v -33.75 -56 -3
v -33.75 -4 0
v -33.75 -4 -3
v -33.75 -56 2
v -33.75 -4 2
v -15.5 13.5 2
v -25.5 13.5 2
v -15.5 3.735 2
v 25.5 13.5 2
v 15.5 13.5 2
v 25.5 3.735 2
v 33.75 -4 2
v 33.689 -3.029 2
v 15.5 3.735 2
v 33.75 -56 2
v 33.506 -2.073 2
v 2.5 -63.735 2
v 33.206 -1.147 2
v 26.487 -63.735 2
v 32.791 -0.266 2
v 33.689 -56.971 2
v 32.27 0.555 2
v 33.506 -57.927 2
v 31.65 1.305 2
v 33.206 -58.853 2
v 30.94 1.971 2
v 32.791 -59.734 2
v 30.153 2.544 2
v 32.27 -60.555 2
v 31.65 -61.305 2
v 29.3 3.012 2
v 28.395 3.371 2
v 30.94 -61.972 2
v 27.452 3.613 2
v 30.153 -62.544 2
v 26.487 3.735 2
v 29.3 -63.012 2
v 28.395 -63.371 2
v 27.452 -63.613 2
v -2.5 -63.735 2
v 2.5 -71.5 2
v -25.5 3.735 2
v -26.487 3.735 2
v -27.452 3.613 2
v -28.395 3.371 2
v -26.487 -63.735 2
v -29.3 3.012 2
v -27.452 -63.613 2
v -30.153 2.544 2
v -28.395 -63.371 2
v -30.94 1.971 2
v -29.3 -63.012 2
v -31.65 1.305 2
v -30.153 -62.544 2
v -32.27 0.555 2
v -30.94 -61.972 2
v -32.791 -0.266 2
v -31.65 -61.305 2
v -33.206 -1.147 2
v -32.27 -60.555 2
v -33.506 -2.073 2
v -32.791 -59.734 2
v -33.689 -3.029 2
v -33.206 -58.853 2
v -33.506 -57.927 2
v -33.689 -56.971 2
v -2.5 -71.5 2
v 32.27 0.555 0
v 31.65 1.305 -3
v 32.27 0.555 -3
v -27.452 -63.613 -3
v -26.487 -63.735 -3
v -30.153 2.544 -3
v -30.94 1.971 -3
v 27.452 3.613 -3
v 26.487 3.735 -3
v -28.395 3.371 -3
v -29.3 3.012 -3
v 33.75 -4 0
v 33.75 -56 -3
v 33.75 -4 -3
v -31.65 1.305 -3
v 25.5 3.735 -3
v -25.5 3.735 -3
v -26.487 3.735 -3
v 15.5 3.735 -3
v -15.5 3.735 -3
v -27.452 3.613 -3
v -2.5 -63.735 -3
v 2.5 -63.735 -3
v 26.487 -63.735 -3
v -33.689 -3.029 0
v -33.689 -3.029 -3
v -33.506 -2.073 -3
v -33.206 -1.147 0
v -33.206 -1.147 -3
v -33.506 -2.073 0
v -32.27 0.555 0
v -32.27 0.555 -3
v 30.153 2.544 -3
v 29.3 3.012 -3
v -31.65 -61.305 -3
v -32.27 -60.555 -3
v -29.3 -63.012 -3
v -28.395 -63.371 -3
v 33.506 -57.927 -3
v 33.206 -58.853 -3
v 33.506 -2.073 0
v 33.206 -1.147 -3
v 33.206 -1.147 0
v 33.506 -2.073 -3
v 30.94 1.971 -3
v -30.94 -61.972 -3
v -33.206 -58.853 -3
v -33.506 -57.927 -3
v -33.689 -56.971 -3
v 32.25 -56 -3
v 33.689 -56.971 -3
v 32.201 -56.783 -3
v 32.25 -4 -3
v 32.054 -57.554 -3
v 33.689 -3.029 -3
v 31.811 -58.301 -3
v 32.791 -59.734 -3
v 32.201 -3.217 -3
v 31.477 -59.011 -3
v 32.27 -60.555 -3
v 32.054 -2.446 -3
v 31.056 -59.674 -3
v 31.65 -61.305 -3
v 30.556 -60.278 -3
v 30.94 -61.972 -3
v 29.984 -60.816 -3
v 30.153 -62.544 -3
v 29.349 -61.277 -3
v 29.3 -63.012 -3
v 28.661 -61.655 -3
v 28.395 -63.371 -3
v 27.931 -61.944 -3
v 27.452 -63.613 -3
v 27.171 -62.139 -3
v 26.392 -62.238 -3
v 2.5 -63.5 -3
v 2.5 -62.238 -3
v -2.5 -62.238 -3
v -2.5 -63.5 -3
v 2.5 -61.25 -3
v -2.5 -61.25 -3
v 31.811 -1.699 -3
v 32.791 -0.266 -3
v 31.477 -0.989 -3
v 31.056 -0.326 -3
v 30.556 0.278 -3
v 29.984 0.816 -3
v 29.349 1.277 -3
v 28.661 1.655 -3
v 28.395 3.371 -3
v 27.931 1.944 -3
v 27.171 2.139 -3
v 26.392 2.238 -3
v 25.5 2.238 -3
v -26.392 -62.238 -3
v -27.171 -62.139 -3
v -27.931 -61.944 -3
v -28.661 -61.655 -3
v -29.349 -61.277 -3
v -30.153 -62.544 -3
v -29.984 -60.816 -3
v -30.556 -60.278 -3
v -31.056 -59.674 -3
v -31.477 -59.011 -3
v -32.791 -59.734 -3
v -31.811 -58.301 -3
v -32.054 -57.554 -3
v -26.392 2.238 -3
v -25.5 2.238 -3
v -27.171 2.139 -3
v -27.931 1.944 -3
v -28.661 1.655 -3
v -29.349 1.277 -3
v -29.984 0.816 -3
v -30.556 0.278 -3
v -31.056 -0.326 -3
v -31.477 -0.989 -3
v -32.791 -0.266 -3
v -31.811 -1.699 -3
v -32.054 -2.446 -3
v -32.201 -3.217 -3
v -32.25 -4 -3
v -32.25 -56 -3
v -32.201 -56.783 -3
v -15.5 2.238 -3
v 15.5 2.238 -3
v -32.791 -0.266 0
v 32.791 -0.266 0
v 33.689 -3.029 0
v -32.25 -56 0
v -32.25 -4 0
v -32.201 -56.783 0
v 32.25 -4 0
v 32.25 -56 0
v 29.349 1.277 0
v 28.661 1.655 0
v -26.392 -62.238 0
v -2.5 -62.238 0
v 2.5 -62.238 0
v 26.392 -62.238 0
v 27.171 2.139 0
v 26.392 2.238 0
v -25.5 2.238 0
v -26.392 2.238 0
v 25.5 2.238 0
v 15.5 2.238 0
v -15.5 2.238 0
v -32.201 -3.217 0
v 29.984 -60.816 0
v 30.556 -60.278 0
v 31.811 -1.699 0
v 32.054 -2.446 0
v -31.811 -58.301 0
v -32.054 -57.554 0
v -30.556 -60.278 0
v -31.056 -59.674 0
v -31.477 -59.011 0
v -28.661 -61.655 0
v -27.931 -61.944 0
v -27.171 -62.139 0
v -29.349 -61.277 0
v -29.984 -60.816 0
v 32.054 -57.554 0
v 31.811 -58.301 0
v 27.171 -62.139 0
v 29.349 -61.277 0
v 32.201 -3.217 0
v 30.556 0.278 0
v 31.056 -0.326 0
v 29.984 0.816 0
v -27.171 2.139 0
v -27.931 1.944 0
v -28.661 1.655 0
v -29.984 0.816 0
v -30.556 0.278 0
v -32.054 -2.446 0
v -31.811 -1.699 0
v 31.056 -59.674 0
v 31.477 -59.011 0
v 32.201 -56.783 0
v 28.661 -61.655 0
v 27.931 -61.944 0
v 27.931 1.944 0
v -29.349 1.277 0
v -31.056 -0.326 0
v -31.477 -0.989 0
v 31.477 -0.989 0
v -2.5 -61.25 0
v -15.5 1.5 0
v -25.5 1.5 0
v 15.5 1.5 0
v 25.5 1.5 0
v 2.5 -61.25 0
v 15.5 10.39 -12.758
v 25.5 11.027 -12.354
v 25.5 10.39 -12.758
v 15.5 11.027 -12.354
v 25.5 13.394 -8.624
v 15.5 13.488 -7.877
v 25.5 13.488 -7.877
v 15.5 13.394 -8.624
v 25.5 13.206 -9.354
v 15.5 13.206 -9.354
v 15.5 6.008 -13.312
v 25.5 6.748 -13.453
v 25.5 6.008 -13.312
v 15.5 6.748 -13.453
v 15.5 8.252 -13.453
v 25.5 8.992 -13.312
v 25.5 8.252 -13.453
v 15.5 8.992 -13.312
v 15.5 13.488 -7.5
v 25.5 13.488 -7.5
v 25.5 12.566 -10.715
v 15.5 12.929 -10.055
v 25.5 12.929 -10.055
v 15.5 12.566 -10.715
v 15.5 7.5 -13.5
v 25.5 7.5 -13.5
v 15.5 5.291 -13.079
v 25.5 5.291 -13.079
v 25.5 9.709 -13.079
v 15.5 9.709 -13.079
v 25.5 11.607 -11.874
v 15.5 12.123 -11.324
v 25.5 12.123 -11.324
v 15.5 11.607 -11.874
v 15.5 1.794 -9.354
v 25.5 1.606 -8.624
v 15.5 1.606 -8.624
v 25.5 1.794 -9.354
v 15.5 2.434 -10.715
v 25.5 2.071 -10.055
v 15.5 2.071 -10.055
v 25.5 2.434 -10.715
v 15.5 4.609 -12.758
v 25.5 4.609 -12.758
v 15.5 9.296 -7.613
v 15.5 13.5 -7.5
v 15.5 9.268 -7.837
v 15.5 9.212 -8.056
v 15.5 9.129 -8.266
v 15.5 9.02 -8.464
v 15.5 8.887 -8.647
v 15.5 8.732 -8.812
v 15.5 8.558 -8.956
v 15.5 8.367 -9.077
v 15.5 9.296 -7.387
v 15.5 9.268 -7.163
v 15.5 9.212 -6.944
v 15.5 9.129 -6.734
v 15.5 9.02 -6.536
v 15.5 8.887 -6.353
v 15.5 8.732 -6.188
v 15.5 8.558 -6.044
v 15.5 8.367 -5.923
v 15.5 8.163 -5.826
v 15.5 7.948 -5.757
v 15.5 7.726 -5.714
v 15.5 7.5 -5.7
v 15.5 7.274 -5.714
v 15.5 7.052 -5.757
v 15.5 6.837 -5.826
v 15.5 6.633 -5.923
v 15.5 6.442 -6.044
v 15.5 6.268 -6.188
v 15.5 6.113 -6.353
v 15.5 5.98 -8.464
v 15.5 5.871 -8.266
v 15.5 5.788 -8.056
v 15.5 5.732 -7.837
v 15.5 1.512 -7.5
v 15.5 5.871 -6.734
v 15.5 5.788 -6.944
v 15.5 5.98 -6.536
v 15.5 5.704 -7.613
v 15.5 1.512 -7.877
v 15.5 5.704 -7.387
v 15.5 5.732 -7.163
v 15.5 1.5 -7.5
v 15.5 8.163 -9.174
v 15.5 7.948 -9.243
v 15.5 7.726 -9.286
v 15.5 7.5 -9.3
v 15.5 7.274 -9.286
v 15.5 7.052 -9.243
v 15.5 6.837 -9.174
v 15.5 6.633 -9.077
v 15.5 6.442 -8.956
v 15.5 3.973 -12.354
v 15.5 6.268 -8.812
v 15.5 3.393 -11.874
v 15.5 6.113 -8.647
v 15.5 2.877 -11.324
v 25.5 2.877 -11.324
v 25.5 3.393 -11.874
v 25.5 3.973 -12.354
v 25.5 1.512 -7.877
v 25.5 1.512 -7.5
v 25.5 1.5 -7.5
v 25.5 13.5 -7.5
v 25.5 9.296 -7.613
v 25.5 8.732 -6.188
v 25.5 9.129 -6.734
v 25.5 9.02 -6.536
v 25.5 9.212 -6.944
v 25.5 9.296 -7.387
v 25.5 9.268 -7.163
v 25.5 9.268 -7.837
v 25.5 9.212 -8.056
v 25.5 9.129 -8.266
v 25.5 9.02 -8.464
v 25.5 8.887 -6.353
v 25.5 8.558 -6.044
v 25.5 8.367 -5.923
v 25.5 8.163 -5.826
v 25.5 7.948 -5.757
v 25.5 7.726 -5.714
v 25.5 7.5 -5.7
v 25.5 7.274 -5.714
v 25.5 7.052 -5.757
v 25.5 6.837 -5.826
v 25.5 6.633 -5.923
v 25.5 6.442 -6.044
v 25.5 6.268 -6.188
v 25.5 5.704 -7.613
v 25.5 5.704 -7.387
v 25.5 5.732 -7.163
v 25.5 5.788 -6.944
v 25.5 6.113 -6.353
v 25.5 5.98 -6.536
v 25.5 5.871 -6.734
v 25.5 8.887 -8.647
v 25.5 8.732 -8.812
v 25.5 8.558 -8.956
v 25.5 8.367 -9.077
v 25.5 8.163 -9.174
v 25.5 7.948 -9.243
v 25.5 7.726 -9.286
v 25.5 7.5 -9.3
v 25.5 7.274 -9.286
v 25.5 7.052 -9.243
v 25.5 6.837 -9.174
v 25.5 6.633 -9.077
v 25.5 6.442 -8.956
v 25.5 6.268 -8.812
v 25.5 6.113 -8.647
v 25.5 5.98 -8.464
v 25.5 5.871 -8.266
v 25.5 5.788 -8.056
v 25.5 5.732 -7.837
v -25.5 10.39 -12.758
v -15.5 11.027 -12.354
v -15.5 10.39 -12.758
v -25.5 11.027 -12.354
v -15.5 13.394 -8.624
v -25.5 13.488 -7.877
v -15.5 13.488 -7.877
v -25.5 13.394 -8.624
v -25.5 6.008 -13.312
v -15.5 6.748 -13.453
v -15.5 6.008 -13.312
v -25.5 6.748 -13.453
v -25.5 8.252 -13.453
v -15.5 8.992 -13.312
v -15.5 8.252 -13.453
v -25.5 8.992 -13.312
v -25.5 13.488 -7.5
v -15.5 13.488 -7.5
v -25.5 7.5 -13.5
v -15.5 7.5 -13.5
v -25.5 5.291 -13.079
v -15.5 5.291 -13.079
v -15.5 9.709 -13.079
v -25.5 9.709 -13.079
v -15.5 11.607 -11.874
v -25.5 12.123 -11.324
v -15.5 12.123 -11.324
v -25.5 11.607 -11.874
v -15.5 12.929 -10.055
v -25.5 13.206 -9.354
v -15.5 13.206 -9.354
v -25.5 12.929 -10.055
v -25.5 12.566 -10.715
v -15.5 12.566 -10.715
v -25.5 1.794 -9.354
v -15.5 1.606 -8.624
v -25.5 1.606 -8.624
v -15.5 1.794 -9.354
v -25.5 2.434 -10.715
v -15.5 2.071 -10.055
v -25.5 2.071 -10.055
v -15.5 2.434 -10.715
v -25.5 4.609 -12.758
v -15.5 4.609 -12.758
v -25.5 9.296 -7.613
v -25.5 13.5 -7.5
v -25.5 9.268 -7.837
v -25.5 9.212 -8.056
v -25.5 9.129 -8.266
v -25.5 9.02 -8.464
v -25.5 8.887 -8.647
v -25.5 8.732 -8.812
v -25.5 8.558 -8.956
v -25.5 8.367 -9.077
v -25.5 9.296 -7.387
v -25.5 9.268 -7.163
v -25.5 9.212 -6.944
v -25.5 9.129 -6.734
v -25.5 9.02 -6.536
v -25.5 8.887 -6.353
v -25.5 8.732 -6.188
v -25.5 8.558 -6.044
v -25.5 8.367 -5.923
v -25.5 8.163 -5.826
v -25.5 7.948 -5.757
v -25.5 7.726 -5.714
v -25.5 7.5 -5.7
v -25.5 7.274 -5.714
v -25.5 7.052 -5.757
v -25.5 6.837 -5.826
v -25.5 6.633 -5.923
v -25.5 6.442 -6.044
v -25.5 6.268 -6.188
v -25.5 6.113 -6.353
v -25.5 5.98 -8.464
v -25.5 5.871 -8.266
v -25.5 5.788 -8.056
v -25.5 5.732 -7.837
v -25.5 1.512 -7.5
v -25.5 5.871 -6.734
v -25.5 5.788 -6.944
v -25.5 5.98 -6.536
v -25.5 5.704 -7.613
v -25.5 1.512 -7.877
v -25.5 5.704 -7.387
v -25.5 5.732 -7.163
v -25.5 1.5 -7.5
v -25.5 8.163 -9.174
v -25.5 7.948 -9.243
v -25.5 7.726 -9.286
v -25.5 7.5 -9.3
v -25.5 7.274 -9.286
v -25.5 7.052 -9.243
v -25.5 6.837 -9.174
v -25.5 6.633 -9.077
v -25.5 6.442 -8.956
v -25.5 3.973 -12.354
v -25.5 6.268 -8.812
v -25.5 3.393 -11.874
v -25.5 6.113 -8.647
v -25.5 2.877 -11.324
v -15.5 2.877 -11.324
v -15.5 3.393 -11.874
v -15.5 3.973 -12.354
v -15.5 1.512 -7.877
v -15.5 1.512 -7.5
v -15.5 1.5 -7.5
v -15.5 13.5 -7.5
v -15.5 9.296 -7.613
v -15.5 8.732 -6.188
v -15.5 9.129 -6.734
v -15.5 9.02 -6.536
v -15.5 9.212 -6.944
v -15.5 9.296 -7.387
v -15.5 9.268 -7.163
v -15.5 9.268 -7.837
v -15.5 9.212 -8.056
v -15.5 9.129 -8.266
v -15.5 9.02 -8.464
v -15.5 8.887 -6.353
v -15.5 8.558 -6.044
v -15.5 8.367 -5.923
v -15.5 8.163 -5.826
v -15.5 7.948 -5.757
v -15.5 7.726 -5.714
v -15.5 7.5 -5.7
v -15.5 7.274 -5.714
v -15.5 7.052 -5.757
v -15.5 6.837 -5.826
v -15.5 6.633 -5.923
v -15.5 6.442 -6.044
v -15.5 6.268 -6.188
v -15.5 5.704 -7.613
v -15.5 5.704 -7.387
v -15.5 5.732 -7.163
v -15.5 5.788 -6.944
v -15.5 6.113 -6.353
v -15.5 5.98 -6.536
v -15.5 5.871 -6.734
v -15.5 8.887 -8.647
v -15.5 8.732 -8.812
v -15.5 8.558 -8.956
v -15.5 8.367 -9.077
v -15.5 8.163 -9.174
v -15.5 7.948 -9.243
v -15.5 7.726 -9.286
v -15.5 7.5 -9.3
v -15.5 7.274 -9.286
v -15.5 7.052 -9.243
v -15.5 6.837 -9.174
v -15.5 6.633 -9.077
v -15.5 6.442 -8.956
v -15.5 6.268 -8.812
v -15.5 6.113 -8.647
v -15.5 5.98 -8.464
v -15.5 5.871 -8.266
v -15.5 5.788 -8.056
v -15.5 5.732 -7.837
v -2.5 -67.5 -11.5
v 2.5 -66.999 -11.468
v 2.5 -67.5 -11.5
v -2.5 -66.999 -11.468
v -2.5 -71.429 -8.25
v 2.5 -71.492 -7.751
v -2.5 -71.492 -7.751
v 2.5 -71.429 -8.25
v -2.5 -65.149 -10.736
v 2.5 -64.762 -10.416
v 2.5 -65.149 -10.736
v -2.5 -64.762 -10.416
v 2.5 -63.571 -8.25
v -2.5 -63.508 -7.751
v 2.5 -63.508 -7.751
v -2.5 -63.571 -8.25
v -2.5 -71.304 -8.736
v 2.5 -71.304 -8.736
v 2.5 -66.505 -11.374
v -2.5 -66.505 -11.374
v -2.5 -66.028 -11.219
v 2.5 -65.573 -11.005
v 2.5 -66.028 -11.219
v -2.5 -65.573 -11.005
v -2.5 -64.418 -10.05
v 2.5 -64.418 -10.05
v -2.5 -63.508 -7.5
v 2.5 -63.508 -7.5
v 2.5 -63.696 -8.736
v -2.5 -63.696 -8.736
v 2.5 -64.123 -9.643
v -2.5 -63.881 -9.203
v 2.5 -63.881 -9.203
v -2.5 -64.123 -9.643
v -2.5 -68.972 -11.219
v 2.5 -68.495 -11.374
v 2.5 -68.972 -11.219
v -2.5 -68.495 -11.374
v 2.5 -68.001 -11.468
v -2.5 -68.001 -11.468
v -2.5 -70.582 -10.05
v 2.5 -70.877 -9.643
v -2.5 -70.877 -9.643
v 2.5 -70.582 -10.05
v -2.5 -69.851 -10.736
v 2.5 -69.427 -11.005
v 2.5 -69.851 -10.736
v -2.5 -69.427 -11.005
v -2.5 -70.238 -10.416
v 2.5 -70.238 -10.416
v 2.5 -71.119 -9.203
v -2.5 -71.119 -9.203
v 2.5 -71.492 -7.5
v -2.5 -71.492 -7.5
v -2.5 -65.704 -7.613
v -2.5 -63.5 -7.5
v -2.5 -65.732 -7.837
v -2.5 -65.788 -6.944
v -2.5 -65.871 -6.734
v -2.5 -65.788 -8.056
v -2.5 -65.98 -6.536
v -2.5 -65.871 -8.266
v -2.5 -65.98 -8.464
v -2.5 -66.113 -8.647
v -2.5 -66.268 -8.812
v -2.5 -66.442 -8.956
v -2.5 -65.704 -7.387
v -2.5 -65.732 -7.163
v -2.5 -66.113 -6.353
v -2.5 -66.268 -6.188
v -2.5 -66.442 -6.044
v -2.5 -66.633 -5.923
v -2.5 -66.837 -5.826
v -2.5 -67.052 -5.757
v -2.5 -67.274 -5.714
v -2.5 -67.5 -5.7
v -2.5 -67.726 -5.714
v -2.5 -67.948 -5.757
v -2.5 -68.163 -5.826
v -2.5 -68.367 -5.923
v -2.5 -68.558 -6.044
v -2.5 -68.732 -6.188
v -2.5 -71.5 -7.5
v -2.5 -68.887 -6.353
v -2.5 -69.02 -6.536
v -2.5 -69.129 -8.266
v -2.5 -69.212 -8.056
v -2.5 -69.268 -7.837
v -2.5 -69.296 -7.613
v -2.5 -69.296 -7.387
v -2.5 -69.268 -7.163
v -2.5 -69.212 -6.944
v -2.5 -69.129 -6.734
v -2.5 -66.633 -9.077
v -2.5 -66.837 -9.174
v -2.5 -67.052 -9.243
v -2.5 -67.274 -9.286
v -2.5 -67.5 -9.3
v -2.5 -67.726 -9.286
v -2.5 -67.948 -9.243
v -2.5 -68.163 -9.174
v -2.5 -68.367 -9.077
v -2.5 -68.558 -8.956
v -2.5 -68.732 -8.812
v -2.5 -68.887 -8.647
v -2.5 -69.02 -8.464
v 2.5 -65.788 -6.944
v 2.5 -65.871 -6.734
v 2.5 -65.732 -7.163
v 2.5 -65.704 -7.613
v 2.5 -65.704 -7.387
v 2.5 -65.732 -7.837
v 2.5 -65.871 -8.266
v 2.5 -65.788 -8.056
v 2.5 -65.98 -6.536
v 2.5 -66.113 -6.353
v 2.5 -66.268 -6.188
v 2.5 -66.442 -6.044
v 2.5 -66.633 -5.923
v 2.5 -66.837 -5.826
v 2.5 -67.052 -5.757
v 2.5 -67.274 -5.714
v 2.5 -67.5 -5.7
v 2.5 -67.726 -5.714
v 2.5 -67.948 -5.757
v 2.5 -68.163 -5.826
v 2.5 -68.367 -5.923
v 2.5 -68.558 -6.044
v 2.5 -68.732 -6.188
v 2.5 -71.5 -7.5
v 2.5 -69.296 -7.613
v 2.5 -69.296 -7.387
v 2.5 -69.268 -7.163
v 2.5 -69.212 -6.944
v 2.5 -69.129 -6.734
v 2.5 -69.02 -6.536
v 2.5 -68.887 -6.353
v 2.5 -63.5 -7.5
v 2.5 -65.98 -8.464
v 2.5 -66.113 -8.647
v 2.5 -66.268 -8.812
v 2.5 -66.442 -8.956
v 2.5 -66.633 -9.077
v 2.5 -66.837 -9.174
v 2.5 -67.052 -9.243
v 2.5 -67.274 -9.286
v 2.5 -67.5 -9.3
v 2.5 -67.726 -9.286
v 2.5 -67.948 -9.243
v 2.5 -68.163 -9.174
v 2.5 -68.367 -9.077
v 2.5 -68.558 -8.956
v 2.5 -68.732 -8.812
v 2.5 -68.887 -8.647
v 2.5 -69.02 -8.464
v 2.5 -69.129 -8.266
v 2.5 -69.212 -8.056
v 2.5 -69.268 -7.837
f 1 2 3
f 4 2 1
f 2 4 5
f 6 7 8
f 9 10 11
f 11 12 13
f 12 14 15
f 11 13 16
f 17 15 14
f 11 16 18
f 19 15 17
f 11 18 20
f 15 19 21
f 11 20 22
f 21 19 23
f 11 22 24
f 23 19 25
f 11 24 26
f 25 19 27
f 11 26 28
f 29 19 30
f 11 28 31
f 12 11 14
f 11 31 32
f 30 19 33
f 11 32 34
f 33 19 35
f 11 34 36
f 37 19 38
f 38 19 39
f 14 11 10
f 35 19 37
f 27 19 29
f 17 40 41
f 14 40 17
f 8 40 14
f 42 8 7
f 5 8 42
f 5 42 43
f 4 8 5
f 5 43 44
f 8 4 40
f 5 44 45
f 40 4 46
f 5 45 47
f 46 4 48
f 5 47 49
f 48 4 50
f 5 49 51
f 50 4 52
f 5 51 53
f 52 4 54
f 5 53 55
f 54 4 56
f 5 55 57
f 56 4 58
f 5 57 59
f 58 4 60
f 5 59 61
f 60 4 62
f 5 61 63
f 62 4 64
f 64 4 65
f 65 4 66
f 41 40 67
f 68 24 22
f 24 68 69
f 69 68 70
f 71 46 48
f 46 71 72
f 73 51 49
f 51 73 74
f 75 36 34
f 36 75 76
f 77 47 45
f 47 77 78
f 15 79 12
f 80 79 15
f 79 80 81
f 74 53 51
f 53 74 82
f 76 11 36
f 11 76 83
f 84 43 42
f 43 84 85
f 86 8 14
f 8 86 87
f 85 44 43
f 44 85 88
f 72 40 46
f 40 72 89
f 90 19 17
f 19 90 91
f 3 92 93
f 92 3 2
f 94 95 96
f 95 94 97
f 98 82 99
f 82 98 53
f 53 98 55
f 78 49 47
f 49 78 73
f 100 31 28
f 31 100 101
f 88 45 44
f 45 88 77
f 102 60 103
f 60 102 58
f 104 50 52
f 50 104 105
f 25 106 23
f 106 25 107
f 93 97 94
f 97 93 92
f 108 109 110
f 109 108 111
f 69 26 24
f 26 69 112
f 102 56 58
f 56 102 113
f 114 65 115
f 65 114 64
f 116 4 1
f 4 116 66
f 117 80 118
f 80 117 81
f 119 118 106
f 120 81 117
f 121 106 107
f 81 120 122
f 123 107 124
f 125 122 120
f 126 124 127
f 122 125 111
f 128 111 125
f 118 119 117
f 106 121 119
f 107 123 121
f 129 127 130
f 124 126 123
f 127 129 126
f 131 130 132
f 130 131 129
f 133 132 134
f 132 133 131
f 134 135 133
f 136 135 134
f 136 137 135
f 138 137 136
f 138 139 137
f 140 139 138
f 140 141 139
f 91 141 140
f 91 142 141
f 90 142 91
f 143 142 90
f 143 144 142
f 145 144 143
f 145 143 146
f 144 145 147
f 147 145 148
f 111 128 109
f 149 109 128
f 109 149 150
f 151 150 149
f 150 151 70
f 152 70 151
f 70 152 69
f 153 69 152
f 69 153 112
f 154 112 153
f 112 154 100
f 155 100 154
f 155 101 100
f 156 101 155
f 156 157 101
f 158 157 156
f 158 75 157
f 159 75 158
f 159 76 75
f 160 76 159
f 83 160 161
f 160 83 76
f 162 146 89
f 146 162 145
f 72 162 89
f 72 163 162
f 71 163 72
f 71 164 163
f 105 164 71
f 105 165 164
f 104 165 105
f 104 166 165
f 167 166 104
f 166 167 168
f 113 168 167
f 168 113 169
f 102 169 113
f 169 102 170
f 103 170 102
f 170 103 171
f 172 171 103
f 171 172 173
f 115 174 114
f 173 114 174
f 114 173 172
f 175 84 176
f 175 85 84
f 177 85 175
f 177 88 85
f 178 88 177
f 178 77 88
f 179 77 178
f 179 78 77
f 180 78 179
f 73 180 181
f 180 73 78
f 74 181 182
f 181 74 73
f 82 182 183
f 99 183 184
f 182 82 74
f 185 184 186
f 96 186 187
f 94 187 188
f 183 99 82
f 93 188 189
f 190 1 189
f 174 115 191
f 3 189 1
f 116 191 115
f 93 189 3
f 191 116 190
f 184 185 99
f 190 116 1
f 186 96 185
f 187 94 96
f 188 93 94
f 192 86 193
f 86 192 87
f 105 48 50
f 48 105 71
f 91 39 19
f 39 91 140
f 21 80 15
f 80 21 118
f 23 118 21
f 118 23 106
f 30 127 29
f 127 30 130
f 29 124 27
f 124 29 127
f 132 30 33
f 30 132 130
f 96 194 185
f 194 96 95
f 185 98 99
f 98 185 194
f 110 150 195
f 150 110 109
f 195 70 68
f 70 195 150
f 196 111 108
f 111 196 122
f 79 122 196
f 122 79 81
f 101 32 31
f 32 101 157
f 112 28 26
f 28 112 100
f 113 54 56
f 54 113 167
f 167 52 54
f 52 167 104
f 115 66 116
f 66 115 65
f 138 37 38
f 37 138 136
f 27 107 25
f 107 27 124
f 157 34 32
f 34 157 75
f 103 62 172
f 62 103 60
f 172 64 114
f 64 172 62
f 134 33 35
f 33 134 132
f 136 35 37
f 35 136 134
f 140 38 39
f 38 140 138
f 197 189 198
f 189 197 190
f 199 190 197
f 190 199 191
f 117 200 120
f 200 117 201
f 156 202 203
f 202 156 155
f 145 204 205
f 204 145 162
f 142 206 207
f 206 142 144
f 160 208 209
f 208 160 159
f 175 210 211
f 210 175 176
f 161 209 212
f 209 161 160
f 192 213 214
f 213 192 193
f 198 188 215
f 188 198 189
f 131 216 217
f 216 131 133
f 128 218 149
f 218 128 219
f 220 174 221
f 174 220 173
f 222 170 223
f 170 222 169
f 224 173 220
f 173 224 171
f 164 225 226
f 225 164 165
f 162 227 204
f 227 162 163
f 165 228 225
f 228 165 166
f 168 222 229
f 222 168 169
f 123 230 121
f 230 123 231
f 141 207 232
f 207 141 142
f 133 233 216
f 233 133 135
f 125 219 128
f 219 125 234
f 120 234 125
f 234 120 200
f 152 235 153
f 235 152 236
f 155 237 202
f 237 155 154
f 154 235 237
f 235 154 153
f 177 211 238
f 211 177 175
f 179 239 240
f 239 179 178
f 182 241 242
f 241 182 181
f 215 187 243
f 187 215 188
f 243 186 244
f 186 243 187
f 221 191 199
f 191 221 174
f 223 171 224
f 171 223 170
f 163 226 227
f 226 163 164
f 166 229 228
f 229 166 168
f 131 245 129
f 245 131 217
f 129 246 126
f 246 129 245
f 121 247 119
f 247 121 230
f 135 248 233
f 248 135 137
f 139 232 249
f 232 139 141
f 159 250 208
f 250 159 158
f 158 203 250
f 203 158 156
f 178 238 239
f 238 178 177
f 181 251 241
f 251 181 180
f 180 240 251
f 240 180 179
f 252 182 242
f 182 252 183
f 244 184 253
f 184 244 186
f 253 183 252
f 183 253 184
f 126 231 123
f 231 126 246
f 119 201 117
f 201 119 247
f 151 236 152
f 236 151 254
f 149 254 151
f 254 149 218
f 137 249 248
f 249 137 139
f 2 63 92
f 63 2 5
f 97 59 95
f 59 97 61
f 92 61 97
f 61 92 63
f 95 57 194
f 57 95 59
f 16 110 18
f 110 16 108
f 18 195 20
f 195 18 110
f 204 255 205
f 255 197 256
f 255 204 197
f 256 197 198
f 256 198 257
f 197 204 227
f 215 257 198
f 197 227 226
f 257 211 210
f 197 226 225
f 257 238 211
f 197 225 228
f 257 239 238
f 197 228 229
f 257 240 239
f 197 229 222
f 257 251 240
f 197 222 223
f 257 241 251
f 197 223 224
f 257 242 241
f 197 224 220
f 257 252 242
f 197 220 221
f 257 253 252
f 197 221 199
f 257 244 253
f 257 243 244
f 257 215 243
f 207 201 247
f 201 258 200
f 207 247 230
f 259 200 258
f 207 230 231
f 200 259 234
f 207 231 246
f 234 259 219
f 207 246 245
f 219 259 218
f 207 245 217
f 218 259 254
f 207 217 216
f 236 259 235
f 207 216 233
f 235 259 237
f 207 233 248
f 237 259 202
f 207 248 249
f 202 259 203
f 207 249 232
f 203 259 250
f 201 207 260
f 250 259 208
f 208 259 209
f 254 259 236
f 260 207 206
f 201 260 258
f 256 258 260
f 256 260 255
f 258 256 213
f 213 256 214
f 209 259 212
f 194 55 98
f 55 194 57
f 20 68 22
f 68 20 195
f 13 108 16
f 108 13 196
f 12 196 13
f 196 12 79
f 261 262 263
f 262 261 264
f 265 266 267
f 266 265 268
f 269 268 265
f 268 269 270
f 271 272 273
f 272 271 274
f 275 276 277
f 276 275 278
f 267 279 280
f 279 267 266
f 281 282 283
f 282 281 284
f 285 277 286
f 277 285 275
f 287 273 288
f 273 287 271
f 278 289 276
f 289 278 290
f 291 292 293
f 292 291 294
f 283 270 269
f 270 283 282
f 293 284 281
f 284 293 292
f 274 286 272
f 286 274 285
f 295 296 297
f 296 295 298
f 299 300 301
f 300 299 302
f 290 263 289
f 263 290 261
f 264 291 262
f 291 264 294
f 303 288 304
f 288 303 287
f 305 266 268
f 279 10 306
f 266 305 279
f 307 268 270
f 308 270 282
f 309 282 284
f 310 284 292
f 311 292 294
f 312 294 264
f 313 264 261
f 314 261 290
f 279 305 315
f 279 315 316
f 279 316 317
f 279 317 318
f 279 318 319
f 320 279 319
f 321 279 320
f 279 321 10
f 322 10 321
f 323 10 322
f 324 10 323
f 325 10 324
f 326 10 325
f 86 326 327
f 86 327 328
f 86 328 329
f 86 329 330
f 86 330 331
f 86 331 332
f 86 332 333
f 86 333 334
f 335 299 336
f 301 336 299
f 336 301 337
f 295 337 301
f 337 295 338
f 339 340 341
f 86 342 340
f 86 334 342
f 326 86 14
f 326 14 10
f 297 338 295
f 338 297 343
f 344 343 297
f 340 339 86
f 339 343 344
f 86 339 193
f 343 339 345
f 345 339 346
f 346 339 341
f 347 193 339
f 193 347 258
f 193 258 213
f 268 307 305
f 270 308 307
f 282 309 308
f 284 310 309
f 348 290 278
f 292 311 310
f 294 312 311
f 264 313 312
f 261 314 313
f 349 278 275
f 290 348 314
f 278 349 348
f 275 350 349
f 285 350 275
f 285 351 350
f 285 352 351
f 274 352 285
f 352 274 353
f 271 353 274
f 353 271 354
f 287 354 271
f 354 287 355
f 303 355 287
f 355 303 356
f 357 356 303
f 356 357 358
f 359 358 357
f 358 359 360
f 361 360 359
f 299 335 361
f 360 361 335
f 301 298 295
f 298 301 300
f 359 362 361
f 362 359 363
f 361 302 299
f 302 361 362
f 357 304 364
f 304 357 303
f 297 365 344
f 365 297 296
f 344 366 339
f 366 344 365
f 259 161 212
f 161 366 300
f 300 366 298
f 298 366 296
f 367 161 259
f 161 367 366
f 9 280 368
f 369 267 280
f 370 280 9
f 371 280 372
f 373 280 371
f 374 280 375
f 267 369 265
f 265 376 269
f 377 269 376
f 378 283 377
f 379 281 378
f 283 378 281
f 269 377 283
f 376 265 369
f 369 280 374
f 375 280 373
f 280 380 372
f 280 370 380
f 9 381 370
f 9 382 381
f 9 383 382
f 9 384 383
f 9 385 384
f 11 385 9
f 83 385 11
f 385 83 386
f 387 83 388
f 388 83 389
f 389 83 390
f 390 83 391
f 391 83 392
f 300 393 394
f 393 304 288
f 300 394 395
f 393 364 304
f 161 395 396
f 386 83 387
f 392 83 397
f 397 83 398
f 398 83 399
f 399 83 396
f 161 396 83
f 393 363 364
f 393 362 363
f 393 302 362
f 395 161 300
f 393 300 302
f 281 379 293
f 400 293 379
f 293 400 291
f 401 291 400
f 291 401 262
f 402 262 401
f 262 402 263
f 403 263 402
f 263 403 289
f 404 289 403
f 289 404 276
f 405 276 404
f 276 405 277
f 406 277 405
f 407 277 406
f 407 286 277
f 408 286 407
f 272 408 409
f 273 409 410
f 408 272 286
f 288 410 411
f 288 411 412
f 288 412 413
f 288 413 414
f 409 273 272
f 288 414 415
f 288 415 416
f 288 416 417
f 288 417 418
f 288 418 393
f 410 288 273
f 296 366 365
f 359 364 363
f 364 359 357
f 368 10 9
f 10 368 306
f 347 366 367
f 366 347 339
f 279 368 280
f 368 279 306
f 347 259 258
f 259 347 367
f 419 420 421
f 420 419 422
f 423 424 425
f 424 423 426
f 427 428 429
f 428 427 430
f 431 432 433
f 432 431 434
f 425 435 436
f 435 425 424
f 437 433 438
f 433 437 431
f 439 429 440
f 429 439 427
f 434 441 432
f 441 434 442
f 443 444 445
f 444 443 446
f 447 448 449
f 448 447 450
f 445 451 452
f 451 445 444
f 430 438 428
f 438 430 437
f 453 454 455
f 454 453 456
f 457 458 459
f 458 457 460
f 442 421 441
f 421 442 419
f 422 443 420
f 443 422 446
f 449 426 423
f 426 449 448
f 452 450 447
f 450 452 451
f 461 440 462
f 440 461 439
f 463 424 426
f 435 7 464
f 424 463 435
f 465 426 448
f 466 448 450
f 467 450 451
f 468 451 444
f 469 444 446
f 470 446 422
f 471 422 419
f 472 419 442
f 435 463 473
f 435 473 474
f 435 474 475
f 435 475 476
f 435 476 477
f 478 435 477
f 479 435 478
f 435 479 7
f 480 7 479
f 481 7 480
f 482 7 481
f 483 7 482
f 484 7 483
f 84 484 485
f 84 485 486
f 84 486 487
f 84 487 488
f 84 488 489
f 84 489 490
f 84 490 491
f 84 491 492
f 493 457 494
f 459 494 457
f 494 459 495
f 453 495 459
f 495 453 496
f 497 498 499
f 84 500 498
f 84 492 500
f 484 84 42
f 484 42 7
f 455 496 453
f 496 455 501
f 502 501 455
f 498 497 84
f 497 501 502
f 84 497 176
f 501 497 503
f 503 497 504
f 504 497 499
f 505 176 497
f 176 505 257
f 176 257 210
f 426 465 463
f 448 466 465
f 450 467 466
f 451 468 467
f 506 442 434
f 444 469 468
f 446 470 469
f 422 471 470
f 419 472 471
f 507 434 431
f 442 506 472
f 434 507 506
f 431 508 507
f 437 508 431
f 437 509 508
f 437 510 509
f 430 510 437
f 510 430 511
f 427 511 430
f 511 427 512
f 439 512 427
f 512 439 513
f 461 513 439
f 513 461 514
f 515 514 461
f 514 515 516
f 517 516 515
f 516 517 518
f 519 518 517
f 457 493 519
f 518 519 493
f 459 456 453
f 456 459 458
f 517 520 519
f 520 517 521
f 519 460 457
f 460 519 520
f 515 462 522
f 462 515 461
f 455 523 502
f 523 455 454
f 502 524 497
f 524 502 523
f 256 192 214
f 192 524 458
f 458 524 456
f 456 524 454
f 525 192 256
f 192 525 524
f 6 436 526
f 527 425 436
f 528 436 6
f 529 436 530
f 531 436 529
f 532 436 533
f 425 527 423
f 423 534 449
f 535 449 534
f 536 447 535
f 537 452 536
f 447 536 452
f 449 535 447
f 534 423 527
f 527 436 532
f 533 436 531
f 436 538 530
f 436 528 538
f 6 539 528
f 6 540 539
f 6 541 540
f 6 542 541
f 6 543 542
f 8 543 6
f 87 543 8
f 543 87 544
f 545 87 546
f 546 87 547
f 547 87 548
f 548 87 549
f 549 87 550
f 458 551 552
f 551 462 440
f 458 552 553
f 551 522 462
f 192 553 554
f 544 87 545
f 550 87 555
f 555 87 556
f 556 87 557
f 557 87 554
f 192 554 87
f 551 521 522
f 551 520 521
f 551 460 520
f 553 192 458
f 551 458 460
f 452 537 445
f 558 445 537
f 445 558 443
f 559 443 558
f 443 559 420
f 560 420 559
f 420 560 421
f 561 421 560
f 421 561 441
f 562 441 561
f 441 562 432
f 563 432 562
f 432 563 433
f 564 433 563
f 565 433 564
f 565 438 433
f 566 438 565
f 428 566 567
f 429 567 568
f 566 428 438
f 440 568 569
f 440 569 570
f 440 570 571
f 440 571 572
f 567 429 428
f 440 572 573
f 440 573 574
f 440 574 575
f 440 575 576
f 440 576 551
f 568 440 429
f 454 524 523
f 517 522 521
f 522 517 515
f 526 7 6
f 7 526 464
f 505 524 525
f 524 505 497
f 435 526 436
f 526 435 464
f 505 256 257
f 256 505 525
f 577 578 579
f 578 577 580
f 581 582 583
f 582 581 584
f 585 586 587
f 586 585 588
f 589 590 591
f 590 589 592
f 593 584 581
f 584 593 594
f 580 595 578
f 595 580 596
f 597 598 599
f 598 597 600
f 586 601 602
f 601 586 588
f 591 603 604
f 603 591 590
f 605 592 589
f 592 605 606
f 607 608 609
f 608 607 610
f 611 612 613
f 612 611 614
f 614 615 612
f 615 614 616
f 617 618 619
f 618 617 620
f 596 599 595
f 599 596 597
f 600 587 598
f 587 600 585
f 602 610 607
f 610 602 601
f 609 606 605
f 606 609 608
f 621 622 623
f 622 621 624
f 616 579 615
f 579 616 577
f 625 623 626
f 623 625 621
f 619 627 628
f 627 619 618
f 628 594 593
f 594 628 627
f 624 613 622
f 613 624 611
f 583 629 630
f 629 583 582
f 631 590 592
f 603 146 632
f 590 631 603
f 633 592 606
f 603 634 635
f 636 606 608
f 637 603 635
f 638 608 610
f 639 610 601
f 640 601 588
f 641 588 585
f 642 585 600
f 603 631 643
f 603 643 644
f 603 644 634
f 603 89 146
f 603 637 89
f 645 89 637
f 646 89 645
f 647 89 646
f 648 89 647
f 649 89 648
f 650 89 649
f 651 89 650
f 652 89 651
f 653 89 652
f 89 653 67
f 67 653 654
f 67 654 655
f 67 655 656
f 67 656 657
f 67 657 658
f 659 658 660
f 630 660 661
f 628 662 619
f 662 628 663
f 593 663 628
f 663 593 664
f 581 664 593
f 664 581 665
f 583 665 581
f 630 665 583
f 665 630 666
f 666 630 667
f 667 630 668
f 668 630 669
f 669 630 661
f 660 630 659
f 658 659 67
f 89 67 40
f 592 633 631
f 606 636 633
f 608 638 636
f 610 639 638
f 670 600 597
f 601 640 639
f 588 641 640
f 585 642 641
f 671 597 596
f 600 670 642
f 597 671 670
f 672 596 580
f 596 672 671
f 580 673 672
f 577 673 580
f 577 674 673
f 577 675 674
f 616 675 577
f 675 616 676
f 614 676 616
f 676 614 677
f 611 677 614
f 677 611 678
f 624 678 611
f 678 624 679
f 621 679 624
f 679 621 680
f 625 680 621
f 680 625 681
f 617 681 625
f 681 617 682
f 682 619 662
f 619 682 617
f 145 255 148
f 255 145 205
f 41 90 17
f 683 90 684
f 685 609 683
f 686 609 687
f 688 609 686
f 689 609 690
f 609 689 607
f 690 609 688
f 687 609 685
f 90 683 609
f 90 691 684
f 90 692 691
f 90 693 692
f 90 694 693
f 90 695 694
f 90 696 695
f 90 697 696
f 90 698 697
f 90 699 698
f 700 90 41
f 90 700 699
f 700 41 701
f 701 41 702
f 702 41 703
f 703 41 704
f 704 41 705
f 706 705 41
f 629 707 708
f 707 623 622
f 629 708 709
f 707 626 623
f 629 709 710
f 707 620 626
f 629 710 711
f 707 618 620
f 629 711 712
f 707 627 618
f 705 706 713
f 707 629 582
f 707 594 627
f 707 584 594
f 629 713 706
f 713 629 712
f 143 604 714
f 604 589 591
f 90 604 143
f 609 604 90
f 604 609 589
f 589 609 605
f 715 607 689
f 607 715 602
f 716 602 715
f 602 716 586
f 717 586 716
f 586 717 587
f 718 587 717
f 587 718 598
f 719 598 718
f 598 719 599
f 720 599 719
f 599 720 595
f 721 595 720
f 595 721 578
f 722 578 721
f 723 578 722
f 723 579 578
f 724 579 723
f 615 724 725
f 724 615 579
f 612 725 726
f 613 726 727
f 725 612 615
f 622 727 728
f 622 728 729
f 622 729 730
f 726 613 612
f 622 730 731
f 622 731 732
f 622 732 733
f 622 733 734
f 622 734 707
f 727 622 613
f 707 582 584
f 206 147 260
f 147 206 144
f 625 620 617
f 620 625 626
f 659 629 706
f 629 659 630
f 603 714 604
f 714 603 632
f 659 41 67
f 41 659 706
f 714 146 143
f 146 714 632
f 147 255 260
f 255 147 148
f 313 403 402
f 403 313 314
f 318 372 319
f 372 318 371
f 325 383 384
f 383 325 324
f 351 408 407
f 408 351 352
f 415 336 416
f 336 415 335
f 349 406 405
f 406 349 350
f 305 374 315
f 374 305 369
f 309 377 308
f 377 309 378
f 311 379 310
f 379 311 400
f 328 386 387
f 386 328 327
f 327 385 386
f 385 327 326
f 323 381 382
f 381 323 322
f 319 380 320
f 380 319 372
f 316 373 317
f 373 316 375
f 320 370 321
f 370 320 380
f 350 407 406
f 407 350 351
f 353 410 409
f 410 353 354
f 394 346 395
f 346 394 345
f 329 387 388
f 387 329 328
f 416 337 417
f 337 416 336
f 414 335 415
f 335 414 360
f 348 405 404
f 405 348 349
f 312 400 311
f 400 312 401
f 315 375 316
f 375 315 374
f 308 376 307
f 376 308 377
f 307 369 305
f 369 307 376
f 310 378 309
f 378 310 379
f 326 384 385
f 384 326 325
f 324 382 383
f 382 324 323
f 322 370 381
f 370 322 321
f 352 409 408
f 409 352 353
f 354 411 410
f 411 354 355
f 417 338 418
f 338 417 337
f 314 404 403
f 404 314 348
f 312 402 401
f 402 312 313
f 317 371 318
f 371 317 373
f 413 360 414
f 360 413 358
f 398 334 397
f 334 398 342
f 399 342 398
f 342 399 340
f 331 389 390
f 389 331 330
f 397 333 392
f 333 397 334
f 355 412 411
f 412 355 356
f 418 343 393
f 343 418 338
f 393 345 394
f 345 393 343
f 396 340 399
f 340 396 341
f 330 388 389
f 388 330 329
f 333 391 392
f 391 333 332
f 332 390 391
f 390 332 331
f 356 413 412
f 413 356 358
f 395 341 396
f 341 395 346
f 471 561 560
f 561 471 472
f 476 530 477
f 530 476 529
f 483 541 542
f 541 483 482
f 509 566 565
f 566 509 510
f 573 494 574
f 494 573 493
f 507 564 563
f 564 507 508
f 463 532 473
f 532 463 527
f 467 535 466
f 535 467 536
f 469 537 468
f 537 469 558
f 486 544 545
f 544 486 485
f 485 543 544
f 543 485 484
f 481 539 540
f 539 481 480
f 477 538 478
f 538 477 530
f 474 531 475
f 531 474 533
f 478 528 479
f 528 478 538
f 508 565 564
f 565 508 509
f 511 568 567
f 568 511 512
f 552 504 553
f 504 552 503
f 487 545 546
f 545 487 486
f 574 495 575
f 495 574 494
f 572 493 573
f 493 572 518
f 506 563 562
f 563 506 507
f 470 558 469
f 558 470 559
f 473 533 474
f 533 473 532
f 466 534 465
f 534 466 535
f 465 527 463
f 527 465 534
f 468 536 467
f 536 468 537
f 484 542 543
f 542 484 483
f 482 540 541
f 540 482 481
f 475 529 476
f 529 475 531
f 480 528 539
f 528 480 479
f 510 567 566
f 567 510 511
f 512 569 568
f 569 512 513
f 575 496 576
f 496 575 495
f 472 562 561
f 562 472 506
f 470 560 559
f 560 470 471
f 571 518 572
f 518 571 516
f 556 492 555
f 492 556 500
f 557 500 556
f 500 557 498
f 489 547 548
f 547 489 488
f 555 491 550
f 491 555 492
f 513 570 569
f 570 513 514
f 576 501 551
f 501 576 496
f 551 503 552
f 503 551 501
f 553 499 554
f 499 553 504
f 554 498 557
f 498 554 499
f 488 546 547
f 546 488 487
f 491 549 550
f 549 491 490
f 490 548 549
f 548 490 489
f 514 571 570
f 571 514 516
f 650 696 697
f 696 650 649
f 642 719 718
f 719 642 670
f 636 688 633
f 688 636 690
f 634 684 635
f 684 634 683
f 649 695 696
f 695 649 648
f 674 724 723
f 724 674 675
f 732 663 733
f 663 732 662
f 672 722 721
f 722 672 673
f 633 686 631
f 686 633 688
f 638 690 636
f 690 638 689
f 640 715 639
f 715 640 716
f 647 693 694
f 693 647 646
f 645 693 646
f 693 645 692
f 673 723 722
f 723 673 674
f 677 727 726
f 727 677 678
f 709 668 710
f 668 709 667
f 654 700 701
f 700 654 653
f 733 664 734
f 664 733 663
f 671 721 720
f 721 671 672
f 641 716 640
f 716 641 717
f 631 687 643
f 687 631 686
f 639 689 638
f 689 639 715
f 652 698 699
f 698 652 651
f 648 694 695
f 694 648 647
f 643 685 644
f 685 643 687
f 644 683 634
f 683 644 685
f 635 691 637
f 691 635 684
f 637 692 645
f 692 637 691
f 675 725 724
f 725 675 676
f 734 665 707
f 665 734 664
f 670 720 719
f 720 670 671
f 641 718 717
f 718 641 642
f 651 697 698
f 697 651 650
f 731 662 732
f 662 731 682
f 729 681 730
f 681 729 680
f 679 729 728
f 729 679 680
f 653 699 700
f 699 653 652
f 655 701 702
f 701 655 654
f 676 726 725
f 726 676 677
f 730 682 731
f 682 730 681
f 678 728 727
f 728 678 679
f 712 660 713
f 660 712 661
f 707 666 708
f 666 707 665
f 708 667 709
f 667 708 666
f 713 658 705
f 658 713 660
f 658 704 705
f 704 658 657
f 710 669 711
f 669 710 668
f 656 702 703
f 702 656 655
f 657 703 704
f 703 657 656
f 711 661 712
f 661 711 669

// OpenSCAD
$fn = 50;


difference() {
	union() {
		translate(v = [0, -30.0000000000, -3]) {
			rotate(a = [0, 0, 0]) {
				difference() {
					union() {
						hull() {
							translate(v = [-26.0000000000, 26.0000000000, 0]) {
								cylinder(h = 5, r = 7.7500000000);
							}
							translate(v = [26.0000000000, 26.0000000000, 0]) {
								cylinder(h = 5, r = 7.7500000000);
							}
							translate(v = [-26.0000000000, -26.0000000000, 0]) {
								cylinder(h = 5, r = 7.7500000000);
							}
							translate(v = [26.0000000000, -26.0000000000, 0]) {
								cylinder(h = 5, r = 7.7500000000);
							}
						}
					}
					union() {
						hull() {
							translate(v = [-26.0000000000, 26.0000000000, 0]) {
								cylinder(h = 5, r = 6.2500000000);
							}
							translate(v = [26.0000000000, 26.0000000000, 0]) {
								cylinder(h = 5, r = 6.2500000000);
							}
							translate(v = [-26.0000000000, -26.0000000000, 0]) {
								cylinder(h = 5, r = 6.2500000000);
							}
							translate(v = [26.0000000000, -26.0000000000, 0]) {
								cylinder(h = 5, r = 6.2500000000);
							}
						}
					}
				}
			}
		}
		translate(v = [0, -30.0000000000, 0]) {
			hull() {
				translate(v = [-26.0000000000, 26.0000000000, 0]) {
					cylinder(h = 2, r = 7.7500000000);
				}
				translate(v = [26.0000000000, 26.0000000000, 0]) {
					cylinder(h = 2, r = 7.7500000000);
				}
				translate(v = [-26.0000000000, -26.0000000000, 0]) {
					cylinder(h = 2, r = 7.7500000000);
				}
				translate(v = [26.0000000000, -26.0000000000, 0]) {
					cylinder(h = 2, r = 7.7500000000);
				}
			}
		}
		translate(v = [15.5000000000, 7.5000000000, -7.5000000000]) {
			rotate(a = [0, 90, 0]) {
				cylinder(h = 10, r = 6.0000000000);
			}
		}
		translate(v = [15.5000000000, 1.5000000000, -7.5000000000]) {
			cube(size = [10, 12, 7.5000000000]);
		}
		translate(v = [15.5000000000, -15.0000000000, 0.0000000000]) {
			cube(size = [10, 28.5000000000, 2]);
		}
		translate(v = [-25.5000000000, 7.5000000000, -7.5000000000]) {
			rotate(a = [0, 90, 0]) {
				cylinder(h = 10, r = 6.0000000000);
			}
		}
		translate(v = [-25.5000000000, 1.5000000000, -7.5000000000]) {
			cube(size = [10, 12, 7.5000000000]);
		}
		translate(v = [-25.5000000000, -15.0000000000, 0.0000000000]) {
			cube(size = [10, 28.5000000000, 2]);
		}
		translate(v = [-2.5000000000, -67.5000000000, -7.5000000000]) {
			rotate(a = [0, 90, 0]) {
				cylinder(h = 5, r = 4.0000000000);
			}
		}
		translate(v = [-2.5000000000, -71.5000000000, -7.5000000000]) {
			cube(size = [5, 8, 7.5000000000]);
		}
		translate(v = [-2.5000000000, -71.5000000000, -3.0000000000]) {
			cube(size = [5, 10.2500000000, 5]);
		}
	}
	union() {
		translate(v = [15.5000000000, 7.5000000000, -7.5000000000]) {
			rotate(a = [0, 90, 0]) {
				cylinder(h = 10, r = 1.8000000000);
			}
		}
		translate(v = [-25.5000000000, 7.5000000000, -7.5000000000]) {
			rotate(a = [0, 90, 0]) {
				cylinder(h = 10, r = 1.8000000000);
			}
		}
		translate(v = [-5.0000000000, -67.5000000000, -7.5000000000]) {
			rotate(a = [0, 90, 0]) {
				cylinder(h = 10, r = 1.8000000000);
			}
		}
	}
}
